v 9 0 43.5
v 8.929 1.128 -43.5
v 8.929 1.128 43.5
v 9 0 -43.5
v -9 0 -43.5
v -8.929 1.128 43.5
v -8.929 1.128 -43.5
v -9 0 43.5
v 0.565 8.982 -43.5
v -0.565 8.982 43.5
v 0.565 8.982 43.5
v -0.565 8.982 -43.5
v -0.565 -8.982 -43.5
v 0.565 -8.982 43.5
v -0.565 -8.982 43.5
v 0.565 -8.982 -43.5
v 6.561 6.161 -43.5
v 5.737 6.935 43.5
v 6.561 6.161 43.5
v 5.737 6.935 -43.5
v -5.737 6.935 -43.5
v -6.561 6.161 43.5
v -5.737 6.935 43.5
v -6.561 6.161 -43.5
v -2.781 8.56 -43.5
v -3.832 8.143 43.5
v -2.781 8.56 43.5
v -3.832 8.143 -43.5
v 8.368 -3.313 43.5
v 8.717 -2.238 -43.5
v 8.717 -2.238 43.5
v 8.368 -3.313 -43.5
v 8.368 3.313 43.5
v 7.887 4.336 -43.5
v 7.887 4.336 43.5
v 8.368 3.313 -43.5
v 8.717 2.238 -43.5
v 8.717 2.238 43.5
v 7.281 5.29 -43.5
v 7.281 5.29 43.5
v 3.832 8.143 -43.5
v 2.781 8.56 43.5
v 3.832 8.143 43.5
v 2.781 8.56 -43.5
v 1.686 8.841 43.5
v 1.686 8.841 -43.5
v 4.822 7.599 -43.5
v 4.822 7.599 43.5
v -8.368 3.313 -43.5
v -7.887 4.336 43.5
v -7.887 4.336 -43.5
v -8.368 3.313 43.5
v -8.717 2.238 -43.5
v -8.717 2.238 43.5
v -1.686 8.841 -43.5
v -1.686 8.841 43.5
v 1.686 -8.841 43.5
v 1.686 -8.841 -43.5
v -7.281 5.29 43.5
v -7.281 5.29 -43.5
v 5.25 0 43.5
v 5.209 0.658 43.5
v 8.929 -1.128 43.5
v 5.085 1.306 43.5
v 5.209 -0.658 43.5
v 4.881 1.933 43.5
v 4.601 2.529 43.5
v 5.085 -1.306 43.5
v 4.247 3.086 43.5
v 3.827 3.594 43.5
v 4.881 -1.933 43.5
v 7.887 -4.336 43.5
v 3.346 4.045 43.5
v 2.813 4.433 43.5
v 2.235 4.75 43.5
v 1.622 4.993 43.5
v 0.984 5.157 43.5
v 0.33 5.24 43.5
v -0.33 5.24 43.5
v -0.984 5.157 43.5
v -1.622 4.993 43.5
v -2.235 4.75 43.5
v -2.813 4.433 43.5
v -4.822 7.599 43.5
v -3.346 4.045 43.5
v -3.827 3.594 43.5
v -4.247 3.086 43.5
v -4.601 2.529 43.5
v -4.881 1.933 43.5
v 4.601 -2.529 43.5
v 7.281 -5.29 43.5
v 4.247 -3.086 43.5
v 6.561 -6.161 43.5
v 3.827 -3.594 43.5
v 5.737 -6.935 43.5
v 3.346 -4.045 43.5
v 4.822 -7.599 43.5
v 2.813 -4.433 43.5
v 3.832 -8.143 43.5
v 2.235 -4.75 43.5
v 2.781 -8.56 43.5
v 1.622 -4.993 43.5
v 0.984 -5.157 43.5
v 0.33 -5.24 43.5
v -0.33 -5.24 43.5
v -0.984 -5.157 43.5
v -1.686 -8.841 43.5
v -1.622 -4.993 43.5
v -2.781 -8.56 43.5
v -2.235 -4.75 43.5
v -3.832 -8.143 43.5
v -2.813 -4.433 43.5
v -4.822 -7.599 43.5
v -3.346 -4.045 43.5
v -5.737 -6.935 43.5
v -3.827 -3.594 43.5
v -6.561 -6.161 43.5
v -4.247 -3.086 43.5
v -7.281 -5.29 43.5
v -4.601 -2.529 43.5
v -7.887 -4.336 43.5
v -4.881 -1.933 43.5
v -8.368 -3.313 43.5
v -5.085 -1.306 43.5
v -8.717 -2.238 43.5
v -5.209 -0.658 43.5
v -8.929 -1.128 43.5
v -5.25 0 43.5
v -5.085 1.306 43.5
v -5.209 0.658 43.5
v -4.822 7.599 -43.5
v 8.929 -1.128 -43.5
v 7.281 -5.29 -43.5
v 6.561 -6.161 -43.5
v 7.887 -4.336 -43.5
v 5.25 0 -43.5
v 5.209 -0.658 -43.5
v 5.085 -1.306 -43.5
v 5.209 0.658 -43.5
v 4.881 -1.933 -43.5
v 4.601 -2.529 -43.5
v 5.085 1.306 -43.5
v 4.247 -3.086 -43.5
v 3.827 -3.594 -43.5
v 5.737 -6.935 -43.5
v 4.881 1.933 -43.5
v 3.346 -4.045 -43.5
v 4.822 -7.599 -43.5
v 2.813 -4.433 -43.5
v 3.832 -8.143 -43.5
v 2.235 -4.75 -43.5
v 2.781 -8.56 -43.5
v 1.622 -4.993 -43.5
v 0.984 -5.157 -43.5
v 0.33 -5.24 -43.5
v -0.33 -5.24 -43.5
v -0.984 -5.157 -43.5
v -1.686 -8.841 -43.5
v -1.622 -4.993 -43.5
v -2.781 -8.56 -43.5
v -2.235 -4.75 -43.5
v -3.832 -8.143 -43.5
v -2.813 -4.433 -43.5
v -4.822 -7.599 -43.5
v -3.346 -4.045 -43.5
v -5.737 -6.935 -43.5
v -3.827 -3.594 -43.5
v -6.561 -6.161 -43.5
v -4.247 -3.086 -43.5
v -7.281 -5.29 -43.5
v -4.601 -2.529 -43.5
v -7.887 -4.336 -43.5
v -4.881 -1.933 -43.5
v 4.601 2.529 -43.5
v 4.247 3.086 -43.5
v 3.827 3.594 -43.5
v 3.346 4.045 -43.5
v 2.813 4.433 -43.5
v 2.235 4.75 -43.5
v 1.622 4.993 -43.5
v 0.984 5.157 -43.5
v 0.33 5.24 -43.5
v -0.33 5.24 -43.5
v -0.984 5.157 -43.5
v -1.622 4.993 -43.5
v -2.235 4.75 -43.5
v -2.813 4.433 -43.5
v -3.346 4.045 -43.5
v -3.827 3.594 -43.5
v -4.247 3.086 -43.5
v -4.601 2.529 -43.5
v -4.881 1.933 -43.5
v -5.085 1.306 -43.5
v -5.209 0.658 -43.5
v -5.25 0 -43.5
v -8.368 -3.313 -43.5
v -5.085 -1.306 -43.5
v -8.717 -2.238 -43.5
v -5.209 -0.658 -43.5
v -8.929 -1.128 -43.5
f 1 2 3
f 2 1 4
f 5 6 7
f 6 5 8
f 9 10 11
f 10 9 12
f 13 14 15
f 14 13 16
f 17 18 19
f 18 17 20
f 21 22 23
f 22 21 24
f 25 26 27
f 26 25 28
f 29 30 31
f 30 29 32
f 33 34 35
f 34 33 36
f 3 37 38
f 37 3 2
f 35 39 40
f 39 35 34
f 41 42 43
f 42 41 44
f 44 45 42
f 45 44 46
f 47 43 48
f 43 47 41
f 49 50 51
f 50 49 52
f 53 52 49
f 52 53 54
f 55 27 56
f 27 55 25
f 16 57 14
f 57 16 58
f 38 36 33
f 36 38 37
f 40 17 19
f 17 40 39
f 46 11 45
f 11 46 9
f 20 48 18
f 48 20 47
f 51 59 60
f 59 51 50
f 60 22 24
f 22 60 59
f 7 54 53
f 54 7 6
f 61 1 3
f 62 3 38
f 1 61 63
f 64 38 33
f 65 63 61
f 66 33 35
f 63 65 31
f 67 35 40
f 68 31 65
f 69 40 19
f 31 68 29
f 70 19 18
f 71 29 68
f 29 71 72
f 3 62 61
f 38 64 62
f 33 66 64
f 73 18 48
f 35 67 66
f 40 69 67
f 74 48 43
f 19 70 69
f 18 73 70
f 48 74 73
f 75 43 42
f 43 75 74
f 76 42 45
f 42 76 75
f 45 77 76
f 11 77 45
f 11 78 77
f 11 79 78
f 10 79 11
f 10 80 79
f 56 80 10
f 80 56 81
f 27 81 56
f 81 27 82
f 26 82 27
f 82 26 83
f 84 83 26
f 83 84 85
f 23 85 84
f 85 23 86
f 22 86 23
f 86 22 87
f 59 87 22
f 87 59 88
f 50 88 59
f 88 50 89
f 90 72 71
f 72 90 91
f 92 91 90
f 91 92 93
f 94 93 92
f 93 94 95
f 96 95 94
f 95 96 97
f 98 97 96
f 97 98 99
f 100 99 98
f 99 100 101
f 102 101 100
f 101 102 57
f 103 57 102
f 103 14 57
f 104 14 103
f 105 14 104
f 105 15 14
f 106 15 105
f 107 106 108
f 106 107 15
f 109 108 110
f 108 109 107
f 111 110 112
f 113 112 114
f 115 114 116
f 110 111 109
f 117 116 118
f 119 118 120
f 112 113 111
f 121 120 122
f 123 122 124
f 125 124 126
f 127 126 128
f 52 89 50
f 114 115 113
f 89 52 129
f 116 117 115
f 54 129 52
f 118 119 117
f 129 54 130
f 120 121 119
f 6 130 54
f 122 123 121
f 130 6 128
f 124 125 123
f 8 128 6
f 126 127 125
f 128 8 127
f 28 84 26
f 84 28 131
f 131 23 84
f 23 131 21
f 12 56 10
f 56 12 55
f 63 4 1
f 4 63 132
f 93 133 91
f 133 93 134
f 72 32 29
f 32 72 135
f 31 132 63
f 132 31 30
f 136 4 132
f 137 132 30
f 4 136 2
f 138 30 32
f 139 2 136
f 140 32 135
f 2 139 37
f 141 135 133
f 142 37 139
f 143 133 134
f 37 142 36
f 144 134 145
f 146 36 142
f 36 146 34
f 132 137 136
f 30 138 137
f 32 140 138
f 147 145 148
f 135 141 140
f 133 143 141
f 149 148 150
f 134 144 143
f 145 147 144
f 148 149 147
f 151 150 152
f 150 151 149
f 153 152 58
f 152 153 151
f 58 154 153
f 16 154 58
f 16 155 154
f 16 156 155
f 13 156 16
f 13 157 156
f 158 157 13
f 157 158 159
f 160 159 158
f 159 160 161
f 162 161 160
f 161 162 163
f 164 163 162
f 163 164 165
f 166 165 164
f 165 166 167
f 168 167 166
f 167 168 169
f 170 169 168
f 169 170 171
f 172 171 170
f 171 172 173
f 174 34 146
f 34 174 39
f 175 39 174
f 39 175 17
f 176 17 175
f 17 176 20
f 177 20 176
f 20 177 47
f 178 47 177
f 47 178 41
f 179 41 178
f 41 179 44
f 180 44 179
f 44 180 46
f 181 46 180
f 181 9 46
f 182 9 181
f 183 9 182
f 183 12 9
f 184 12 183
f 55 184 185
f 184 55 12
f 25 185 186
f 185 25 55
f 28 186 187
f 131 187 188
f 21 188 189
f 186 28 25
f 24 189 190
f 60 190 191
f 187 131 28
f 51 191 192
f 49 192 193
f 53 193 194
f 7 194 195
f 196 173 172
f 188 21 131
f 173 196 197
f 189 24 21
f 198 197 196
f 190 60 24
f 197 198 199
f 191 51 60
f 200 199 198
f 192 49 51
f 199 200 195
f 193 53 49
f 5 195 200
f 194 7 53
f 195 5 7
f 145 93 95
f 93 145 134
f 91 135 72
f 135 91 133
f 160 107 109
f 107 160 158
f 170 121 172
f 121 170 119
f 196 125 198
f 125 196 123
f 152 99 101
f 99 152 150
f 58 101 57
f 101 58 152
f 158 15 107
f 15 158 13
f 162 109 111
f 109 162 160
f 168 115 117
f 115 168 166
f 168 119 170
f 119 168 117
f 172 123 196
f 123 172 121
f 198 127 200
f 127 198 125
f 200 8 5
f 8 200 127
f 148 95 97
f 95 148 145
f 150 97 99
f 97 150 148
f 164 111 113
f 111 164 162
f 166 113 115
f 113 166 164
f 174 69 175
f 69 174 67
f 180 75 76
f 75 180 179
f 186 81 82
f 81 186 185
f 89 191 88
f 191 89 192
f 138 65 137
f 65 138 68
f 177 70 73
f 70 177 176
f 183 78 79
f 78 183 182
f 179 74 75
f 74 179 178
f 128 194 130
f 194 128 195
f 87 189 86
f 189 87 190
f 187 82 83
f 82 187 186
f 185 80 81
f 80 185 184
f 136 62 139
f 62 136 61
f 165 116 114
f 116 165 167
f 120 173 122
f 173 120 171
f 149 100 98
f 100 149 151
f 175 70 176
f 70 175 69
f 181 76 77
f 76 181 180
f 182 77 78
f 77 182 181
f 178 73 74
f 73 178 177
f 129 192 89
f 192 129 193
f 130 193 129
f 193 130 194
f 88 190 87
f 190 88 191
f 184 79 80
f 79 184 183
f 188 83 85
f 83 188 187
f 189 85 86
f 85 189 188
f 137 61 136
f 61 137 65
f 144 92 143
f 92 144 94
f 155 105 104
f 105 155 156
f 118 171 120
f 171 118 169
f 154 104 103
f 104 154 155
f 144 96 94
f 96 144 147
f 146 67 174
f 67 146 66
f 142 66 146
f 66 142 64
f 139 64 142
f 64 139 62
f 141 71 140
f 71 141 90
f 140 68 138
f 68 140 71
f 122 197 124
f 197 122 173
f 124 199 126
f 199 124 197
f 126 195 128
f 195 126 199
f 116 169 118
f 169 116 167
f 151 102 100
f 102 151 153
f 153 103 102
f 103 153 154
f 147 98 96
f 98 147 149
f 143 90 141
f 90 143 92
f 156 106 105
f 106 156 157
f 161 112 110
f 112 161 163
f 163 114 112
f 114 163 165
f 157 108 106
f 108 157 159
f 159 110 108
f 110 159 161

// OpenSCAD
$fn = 50;


difference() {
	union() {
		translate(v = [0, 0, -43.5000000000]) {
			cylinder(h = 87, r = 9.0000000000);
		}
	}
	union() {
		translate(v = [0, 0, -100.0000000000]) {
			cylinder(h = 200, r = 5.2500000000);
		}
	}
}
